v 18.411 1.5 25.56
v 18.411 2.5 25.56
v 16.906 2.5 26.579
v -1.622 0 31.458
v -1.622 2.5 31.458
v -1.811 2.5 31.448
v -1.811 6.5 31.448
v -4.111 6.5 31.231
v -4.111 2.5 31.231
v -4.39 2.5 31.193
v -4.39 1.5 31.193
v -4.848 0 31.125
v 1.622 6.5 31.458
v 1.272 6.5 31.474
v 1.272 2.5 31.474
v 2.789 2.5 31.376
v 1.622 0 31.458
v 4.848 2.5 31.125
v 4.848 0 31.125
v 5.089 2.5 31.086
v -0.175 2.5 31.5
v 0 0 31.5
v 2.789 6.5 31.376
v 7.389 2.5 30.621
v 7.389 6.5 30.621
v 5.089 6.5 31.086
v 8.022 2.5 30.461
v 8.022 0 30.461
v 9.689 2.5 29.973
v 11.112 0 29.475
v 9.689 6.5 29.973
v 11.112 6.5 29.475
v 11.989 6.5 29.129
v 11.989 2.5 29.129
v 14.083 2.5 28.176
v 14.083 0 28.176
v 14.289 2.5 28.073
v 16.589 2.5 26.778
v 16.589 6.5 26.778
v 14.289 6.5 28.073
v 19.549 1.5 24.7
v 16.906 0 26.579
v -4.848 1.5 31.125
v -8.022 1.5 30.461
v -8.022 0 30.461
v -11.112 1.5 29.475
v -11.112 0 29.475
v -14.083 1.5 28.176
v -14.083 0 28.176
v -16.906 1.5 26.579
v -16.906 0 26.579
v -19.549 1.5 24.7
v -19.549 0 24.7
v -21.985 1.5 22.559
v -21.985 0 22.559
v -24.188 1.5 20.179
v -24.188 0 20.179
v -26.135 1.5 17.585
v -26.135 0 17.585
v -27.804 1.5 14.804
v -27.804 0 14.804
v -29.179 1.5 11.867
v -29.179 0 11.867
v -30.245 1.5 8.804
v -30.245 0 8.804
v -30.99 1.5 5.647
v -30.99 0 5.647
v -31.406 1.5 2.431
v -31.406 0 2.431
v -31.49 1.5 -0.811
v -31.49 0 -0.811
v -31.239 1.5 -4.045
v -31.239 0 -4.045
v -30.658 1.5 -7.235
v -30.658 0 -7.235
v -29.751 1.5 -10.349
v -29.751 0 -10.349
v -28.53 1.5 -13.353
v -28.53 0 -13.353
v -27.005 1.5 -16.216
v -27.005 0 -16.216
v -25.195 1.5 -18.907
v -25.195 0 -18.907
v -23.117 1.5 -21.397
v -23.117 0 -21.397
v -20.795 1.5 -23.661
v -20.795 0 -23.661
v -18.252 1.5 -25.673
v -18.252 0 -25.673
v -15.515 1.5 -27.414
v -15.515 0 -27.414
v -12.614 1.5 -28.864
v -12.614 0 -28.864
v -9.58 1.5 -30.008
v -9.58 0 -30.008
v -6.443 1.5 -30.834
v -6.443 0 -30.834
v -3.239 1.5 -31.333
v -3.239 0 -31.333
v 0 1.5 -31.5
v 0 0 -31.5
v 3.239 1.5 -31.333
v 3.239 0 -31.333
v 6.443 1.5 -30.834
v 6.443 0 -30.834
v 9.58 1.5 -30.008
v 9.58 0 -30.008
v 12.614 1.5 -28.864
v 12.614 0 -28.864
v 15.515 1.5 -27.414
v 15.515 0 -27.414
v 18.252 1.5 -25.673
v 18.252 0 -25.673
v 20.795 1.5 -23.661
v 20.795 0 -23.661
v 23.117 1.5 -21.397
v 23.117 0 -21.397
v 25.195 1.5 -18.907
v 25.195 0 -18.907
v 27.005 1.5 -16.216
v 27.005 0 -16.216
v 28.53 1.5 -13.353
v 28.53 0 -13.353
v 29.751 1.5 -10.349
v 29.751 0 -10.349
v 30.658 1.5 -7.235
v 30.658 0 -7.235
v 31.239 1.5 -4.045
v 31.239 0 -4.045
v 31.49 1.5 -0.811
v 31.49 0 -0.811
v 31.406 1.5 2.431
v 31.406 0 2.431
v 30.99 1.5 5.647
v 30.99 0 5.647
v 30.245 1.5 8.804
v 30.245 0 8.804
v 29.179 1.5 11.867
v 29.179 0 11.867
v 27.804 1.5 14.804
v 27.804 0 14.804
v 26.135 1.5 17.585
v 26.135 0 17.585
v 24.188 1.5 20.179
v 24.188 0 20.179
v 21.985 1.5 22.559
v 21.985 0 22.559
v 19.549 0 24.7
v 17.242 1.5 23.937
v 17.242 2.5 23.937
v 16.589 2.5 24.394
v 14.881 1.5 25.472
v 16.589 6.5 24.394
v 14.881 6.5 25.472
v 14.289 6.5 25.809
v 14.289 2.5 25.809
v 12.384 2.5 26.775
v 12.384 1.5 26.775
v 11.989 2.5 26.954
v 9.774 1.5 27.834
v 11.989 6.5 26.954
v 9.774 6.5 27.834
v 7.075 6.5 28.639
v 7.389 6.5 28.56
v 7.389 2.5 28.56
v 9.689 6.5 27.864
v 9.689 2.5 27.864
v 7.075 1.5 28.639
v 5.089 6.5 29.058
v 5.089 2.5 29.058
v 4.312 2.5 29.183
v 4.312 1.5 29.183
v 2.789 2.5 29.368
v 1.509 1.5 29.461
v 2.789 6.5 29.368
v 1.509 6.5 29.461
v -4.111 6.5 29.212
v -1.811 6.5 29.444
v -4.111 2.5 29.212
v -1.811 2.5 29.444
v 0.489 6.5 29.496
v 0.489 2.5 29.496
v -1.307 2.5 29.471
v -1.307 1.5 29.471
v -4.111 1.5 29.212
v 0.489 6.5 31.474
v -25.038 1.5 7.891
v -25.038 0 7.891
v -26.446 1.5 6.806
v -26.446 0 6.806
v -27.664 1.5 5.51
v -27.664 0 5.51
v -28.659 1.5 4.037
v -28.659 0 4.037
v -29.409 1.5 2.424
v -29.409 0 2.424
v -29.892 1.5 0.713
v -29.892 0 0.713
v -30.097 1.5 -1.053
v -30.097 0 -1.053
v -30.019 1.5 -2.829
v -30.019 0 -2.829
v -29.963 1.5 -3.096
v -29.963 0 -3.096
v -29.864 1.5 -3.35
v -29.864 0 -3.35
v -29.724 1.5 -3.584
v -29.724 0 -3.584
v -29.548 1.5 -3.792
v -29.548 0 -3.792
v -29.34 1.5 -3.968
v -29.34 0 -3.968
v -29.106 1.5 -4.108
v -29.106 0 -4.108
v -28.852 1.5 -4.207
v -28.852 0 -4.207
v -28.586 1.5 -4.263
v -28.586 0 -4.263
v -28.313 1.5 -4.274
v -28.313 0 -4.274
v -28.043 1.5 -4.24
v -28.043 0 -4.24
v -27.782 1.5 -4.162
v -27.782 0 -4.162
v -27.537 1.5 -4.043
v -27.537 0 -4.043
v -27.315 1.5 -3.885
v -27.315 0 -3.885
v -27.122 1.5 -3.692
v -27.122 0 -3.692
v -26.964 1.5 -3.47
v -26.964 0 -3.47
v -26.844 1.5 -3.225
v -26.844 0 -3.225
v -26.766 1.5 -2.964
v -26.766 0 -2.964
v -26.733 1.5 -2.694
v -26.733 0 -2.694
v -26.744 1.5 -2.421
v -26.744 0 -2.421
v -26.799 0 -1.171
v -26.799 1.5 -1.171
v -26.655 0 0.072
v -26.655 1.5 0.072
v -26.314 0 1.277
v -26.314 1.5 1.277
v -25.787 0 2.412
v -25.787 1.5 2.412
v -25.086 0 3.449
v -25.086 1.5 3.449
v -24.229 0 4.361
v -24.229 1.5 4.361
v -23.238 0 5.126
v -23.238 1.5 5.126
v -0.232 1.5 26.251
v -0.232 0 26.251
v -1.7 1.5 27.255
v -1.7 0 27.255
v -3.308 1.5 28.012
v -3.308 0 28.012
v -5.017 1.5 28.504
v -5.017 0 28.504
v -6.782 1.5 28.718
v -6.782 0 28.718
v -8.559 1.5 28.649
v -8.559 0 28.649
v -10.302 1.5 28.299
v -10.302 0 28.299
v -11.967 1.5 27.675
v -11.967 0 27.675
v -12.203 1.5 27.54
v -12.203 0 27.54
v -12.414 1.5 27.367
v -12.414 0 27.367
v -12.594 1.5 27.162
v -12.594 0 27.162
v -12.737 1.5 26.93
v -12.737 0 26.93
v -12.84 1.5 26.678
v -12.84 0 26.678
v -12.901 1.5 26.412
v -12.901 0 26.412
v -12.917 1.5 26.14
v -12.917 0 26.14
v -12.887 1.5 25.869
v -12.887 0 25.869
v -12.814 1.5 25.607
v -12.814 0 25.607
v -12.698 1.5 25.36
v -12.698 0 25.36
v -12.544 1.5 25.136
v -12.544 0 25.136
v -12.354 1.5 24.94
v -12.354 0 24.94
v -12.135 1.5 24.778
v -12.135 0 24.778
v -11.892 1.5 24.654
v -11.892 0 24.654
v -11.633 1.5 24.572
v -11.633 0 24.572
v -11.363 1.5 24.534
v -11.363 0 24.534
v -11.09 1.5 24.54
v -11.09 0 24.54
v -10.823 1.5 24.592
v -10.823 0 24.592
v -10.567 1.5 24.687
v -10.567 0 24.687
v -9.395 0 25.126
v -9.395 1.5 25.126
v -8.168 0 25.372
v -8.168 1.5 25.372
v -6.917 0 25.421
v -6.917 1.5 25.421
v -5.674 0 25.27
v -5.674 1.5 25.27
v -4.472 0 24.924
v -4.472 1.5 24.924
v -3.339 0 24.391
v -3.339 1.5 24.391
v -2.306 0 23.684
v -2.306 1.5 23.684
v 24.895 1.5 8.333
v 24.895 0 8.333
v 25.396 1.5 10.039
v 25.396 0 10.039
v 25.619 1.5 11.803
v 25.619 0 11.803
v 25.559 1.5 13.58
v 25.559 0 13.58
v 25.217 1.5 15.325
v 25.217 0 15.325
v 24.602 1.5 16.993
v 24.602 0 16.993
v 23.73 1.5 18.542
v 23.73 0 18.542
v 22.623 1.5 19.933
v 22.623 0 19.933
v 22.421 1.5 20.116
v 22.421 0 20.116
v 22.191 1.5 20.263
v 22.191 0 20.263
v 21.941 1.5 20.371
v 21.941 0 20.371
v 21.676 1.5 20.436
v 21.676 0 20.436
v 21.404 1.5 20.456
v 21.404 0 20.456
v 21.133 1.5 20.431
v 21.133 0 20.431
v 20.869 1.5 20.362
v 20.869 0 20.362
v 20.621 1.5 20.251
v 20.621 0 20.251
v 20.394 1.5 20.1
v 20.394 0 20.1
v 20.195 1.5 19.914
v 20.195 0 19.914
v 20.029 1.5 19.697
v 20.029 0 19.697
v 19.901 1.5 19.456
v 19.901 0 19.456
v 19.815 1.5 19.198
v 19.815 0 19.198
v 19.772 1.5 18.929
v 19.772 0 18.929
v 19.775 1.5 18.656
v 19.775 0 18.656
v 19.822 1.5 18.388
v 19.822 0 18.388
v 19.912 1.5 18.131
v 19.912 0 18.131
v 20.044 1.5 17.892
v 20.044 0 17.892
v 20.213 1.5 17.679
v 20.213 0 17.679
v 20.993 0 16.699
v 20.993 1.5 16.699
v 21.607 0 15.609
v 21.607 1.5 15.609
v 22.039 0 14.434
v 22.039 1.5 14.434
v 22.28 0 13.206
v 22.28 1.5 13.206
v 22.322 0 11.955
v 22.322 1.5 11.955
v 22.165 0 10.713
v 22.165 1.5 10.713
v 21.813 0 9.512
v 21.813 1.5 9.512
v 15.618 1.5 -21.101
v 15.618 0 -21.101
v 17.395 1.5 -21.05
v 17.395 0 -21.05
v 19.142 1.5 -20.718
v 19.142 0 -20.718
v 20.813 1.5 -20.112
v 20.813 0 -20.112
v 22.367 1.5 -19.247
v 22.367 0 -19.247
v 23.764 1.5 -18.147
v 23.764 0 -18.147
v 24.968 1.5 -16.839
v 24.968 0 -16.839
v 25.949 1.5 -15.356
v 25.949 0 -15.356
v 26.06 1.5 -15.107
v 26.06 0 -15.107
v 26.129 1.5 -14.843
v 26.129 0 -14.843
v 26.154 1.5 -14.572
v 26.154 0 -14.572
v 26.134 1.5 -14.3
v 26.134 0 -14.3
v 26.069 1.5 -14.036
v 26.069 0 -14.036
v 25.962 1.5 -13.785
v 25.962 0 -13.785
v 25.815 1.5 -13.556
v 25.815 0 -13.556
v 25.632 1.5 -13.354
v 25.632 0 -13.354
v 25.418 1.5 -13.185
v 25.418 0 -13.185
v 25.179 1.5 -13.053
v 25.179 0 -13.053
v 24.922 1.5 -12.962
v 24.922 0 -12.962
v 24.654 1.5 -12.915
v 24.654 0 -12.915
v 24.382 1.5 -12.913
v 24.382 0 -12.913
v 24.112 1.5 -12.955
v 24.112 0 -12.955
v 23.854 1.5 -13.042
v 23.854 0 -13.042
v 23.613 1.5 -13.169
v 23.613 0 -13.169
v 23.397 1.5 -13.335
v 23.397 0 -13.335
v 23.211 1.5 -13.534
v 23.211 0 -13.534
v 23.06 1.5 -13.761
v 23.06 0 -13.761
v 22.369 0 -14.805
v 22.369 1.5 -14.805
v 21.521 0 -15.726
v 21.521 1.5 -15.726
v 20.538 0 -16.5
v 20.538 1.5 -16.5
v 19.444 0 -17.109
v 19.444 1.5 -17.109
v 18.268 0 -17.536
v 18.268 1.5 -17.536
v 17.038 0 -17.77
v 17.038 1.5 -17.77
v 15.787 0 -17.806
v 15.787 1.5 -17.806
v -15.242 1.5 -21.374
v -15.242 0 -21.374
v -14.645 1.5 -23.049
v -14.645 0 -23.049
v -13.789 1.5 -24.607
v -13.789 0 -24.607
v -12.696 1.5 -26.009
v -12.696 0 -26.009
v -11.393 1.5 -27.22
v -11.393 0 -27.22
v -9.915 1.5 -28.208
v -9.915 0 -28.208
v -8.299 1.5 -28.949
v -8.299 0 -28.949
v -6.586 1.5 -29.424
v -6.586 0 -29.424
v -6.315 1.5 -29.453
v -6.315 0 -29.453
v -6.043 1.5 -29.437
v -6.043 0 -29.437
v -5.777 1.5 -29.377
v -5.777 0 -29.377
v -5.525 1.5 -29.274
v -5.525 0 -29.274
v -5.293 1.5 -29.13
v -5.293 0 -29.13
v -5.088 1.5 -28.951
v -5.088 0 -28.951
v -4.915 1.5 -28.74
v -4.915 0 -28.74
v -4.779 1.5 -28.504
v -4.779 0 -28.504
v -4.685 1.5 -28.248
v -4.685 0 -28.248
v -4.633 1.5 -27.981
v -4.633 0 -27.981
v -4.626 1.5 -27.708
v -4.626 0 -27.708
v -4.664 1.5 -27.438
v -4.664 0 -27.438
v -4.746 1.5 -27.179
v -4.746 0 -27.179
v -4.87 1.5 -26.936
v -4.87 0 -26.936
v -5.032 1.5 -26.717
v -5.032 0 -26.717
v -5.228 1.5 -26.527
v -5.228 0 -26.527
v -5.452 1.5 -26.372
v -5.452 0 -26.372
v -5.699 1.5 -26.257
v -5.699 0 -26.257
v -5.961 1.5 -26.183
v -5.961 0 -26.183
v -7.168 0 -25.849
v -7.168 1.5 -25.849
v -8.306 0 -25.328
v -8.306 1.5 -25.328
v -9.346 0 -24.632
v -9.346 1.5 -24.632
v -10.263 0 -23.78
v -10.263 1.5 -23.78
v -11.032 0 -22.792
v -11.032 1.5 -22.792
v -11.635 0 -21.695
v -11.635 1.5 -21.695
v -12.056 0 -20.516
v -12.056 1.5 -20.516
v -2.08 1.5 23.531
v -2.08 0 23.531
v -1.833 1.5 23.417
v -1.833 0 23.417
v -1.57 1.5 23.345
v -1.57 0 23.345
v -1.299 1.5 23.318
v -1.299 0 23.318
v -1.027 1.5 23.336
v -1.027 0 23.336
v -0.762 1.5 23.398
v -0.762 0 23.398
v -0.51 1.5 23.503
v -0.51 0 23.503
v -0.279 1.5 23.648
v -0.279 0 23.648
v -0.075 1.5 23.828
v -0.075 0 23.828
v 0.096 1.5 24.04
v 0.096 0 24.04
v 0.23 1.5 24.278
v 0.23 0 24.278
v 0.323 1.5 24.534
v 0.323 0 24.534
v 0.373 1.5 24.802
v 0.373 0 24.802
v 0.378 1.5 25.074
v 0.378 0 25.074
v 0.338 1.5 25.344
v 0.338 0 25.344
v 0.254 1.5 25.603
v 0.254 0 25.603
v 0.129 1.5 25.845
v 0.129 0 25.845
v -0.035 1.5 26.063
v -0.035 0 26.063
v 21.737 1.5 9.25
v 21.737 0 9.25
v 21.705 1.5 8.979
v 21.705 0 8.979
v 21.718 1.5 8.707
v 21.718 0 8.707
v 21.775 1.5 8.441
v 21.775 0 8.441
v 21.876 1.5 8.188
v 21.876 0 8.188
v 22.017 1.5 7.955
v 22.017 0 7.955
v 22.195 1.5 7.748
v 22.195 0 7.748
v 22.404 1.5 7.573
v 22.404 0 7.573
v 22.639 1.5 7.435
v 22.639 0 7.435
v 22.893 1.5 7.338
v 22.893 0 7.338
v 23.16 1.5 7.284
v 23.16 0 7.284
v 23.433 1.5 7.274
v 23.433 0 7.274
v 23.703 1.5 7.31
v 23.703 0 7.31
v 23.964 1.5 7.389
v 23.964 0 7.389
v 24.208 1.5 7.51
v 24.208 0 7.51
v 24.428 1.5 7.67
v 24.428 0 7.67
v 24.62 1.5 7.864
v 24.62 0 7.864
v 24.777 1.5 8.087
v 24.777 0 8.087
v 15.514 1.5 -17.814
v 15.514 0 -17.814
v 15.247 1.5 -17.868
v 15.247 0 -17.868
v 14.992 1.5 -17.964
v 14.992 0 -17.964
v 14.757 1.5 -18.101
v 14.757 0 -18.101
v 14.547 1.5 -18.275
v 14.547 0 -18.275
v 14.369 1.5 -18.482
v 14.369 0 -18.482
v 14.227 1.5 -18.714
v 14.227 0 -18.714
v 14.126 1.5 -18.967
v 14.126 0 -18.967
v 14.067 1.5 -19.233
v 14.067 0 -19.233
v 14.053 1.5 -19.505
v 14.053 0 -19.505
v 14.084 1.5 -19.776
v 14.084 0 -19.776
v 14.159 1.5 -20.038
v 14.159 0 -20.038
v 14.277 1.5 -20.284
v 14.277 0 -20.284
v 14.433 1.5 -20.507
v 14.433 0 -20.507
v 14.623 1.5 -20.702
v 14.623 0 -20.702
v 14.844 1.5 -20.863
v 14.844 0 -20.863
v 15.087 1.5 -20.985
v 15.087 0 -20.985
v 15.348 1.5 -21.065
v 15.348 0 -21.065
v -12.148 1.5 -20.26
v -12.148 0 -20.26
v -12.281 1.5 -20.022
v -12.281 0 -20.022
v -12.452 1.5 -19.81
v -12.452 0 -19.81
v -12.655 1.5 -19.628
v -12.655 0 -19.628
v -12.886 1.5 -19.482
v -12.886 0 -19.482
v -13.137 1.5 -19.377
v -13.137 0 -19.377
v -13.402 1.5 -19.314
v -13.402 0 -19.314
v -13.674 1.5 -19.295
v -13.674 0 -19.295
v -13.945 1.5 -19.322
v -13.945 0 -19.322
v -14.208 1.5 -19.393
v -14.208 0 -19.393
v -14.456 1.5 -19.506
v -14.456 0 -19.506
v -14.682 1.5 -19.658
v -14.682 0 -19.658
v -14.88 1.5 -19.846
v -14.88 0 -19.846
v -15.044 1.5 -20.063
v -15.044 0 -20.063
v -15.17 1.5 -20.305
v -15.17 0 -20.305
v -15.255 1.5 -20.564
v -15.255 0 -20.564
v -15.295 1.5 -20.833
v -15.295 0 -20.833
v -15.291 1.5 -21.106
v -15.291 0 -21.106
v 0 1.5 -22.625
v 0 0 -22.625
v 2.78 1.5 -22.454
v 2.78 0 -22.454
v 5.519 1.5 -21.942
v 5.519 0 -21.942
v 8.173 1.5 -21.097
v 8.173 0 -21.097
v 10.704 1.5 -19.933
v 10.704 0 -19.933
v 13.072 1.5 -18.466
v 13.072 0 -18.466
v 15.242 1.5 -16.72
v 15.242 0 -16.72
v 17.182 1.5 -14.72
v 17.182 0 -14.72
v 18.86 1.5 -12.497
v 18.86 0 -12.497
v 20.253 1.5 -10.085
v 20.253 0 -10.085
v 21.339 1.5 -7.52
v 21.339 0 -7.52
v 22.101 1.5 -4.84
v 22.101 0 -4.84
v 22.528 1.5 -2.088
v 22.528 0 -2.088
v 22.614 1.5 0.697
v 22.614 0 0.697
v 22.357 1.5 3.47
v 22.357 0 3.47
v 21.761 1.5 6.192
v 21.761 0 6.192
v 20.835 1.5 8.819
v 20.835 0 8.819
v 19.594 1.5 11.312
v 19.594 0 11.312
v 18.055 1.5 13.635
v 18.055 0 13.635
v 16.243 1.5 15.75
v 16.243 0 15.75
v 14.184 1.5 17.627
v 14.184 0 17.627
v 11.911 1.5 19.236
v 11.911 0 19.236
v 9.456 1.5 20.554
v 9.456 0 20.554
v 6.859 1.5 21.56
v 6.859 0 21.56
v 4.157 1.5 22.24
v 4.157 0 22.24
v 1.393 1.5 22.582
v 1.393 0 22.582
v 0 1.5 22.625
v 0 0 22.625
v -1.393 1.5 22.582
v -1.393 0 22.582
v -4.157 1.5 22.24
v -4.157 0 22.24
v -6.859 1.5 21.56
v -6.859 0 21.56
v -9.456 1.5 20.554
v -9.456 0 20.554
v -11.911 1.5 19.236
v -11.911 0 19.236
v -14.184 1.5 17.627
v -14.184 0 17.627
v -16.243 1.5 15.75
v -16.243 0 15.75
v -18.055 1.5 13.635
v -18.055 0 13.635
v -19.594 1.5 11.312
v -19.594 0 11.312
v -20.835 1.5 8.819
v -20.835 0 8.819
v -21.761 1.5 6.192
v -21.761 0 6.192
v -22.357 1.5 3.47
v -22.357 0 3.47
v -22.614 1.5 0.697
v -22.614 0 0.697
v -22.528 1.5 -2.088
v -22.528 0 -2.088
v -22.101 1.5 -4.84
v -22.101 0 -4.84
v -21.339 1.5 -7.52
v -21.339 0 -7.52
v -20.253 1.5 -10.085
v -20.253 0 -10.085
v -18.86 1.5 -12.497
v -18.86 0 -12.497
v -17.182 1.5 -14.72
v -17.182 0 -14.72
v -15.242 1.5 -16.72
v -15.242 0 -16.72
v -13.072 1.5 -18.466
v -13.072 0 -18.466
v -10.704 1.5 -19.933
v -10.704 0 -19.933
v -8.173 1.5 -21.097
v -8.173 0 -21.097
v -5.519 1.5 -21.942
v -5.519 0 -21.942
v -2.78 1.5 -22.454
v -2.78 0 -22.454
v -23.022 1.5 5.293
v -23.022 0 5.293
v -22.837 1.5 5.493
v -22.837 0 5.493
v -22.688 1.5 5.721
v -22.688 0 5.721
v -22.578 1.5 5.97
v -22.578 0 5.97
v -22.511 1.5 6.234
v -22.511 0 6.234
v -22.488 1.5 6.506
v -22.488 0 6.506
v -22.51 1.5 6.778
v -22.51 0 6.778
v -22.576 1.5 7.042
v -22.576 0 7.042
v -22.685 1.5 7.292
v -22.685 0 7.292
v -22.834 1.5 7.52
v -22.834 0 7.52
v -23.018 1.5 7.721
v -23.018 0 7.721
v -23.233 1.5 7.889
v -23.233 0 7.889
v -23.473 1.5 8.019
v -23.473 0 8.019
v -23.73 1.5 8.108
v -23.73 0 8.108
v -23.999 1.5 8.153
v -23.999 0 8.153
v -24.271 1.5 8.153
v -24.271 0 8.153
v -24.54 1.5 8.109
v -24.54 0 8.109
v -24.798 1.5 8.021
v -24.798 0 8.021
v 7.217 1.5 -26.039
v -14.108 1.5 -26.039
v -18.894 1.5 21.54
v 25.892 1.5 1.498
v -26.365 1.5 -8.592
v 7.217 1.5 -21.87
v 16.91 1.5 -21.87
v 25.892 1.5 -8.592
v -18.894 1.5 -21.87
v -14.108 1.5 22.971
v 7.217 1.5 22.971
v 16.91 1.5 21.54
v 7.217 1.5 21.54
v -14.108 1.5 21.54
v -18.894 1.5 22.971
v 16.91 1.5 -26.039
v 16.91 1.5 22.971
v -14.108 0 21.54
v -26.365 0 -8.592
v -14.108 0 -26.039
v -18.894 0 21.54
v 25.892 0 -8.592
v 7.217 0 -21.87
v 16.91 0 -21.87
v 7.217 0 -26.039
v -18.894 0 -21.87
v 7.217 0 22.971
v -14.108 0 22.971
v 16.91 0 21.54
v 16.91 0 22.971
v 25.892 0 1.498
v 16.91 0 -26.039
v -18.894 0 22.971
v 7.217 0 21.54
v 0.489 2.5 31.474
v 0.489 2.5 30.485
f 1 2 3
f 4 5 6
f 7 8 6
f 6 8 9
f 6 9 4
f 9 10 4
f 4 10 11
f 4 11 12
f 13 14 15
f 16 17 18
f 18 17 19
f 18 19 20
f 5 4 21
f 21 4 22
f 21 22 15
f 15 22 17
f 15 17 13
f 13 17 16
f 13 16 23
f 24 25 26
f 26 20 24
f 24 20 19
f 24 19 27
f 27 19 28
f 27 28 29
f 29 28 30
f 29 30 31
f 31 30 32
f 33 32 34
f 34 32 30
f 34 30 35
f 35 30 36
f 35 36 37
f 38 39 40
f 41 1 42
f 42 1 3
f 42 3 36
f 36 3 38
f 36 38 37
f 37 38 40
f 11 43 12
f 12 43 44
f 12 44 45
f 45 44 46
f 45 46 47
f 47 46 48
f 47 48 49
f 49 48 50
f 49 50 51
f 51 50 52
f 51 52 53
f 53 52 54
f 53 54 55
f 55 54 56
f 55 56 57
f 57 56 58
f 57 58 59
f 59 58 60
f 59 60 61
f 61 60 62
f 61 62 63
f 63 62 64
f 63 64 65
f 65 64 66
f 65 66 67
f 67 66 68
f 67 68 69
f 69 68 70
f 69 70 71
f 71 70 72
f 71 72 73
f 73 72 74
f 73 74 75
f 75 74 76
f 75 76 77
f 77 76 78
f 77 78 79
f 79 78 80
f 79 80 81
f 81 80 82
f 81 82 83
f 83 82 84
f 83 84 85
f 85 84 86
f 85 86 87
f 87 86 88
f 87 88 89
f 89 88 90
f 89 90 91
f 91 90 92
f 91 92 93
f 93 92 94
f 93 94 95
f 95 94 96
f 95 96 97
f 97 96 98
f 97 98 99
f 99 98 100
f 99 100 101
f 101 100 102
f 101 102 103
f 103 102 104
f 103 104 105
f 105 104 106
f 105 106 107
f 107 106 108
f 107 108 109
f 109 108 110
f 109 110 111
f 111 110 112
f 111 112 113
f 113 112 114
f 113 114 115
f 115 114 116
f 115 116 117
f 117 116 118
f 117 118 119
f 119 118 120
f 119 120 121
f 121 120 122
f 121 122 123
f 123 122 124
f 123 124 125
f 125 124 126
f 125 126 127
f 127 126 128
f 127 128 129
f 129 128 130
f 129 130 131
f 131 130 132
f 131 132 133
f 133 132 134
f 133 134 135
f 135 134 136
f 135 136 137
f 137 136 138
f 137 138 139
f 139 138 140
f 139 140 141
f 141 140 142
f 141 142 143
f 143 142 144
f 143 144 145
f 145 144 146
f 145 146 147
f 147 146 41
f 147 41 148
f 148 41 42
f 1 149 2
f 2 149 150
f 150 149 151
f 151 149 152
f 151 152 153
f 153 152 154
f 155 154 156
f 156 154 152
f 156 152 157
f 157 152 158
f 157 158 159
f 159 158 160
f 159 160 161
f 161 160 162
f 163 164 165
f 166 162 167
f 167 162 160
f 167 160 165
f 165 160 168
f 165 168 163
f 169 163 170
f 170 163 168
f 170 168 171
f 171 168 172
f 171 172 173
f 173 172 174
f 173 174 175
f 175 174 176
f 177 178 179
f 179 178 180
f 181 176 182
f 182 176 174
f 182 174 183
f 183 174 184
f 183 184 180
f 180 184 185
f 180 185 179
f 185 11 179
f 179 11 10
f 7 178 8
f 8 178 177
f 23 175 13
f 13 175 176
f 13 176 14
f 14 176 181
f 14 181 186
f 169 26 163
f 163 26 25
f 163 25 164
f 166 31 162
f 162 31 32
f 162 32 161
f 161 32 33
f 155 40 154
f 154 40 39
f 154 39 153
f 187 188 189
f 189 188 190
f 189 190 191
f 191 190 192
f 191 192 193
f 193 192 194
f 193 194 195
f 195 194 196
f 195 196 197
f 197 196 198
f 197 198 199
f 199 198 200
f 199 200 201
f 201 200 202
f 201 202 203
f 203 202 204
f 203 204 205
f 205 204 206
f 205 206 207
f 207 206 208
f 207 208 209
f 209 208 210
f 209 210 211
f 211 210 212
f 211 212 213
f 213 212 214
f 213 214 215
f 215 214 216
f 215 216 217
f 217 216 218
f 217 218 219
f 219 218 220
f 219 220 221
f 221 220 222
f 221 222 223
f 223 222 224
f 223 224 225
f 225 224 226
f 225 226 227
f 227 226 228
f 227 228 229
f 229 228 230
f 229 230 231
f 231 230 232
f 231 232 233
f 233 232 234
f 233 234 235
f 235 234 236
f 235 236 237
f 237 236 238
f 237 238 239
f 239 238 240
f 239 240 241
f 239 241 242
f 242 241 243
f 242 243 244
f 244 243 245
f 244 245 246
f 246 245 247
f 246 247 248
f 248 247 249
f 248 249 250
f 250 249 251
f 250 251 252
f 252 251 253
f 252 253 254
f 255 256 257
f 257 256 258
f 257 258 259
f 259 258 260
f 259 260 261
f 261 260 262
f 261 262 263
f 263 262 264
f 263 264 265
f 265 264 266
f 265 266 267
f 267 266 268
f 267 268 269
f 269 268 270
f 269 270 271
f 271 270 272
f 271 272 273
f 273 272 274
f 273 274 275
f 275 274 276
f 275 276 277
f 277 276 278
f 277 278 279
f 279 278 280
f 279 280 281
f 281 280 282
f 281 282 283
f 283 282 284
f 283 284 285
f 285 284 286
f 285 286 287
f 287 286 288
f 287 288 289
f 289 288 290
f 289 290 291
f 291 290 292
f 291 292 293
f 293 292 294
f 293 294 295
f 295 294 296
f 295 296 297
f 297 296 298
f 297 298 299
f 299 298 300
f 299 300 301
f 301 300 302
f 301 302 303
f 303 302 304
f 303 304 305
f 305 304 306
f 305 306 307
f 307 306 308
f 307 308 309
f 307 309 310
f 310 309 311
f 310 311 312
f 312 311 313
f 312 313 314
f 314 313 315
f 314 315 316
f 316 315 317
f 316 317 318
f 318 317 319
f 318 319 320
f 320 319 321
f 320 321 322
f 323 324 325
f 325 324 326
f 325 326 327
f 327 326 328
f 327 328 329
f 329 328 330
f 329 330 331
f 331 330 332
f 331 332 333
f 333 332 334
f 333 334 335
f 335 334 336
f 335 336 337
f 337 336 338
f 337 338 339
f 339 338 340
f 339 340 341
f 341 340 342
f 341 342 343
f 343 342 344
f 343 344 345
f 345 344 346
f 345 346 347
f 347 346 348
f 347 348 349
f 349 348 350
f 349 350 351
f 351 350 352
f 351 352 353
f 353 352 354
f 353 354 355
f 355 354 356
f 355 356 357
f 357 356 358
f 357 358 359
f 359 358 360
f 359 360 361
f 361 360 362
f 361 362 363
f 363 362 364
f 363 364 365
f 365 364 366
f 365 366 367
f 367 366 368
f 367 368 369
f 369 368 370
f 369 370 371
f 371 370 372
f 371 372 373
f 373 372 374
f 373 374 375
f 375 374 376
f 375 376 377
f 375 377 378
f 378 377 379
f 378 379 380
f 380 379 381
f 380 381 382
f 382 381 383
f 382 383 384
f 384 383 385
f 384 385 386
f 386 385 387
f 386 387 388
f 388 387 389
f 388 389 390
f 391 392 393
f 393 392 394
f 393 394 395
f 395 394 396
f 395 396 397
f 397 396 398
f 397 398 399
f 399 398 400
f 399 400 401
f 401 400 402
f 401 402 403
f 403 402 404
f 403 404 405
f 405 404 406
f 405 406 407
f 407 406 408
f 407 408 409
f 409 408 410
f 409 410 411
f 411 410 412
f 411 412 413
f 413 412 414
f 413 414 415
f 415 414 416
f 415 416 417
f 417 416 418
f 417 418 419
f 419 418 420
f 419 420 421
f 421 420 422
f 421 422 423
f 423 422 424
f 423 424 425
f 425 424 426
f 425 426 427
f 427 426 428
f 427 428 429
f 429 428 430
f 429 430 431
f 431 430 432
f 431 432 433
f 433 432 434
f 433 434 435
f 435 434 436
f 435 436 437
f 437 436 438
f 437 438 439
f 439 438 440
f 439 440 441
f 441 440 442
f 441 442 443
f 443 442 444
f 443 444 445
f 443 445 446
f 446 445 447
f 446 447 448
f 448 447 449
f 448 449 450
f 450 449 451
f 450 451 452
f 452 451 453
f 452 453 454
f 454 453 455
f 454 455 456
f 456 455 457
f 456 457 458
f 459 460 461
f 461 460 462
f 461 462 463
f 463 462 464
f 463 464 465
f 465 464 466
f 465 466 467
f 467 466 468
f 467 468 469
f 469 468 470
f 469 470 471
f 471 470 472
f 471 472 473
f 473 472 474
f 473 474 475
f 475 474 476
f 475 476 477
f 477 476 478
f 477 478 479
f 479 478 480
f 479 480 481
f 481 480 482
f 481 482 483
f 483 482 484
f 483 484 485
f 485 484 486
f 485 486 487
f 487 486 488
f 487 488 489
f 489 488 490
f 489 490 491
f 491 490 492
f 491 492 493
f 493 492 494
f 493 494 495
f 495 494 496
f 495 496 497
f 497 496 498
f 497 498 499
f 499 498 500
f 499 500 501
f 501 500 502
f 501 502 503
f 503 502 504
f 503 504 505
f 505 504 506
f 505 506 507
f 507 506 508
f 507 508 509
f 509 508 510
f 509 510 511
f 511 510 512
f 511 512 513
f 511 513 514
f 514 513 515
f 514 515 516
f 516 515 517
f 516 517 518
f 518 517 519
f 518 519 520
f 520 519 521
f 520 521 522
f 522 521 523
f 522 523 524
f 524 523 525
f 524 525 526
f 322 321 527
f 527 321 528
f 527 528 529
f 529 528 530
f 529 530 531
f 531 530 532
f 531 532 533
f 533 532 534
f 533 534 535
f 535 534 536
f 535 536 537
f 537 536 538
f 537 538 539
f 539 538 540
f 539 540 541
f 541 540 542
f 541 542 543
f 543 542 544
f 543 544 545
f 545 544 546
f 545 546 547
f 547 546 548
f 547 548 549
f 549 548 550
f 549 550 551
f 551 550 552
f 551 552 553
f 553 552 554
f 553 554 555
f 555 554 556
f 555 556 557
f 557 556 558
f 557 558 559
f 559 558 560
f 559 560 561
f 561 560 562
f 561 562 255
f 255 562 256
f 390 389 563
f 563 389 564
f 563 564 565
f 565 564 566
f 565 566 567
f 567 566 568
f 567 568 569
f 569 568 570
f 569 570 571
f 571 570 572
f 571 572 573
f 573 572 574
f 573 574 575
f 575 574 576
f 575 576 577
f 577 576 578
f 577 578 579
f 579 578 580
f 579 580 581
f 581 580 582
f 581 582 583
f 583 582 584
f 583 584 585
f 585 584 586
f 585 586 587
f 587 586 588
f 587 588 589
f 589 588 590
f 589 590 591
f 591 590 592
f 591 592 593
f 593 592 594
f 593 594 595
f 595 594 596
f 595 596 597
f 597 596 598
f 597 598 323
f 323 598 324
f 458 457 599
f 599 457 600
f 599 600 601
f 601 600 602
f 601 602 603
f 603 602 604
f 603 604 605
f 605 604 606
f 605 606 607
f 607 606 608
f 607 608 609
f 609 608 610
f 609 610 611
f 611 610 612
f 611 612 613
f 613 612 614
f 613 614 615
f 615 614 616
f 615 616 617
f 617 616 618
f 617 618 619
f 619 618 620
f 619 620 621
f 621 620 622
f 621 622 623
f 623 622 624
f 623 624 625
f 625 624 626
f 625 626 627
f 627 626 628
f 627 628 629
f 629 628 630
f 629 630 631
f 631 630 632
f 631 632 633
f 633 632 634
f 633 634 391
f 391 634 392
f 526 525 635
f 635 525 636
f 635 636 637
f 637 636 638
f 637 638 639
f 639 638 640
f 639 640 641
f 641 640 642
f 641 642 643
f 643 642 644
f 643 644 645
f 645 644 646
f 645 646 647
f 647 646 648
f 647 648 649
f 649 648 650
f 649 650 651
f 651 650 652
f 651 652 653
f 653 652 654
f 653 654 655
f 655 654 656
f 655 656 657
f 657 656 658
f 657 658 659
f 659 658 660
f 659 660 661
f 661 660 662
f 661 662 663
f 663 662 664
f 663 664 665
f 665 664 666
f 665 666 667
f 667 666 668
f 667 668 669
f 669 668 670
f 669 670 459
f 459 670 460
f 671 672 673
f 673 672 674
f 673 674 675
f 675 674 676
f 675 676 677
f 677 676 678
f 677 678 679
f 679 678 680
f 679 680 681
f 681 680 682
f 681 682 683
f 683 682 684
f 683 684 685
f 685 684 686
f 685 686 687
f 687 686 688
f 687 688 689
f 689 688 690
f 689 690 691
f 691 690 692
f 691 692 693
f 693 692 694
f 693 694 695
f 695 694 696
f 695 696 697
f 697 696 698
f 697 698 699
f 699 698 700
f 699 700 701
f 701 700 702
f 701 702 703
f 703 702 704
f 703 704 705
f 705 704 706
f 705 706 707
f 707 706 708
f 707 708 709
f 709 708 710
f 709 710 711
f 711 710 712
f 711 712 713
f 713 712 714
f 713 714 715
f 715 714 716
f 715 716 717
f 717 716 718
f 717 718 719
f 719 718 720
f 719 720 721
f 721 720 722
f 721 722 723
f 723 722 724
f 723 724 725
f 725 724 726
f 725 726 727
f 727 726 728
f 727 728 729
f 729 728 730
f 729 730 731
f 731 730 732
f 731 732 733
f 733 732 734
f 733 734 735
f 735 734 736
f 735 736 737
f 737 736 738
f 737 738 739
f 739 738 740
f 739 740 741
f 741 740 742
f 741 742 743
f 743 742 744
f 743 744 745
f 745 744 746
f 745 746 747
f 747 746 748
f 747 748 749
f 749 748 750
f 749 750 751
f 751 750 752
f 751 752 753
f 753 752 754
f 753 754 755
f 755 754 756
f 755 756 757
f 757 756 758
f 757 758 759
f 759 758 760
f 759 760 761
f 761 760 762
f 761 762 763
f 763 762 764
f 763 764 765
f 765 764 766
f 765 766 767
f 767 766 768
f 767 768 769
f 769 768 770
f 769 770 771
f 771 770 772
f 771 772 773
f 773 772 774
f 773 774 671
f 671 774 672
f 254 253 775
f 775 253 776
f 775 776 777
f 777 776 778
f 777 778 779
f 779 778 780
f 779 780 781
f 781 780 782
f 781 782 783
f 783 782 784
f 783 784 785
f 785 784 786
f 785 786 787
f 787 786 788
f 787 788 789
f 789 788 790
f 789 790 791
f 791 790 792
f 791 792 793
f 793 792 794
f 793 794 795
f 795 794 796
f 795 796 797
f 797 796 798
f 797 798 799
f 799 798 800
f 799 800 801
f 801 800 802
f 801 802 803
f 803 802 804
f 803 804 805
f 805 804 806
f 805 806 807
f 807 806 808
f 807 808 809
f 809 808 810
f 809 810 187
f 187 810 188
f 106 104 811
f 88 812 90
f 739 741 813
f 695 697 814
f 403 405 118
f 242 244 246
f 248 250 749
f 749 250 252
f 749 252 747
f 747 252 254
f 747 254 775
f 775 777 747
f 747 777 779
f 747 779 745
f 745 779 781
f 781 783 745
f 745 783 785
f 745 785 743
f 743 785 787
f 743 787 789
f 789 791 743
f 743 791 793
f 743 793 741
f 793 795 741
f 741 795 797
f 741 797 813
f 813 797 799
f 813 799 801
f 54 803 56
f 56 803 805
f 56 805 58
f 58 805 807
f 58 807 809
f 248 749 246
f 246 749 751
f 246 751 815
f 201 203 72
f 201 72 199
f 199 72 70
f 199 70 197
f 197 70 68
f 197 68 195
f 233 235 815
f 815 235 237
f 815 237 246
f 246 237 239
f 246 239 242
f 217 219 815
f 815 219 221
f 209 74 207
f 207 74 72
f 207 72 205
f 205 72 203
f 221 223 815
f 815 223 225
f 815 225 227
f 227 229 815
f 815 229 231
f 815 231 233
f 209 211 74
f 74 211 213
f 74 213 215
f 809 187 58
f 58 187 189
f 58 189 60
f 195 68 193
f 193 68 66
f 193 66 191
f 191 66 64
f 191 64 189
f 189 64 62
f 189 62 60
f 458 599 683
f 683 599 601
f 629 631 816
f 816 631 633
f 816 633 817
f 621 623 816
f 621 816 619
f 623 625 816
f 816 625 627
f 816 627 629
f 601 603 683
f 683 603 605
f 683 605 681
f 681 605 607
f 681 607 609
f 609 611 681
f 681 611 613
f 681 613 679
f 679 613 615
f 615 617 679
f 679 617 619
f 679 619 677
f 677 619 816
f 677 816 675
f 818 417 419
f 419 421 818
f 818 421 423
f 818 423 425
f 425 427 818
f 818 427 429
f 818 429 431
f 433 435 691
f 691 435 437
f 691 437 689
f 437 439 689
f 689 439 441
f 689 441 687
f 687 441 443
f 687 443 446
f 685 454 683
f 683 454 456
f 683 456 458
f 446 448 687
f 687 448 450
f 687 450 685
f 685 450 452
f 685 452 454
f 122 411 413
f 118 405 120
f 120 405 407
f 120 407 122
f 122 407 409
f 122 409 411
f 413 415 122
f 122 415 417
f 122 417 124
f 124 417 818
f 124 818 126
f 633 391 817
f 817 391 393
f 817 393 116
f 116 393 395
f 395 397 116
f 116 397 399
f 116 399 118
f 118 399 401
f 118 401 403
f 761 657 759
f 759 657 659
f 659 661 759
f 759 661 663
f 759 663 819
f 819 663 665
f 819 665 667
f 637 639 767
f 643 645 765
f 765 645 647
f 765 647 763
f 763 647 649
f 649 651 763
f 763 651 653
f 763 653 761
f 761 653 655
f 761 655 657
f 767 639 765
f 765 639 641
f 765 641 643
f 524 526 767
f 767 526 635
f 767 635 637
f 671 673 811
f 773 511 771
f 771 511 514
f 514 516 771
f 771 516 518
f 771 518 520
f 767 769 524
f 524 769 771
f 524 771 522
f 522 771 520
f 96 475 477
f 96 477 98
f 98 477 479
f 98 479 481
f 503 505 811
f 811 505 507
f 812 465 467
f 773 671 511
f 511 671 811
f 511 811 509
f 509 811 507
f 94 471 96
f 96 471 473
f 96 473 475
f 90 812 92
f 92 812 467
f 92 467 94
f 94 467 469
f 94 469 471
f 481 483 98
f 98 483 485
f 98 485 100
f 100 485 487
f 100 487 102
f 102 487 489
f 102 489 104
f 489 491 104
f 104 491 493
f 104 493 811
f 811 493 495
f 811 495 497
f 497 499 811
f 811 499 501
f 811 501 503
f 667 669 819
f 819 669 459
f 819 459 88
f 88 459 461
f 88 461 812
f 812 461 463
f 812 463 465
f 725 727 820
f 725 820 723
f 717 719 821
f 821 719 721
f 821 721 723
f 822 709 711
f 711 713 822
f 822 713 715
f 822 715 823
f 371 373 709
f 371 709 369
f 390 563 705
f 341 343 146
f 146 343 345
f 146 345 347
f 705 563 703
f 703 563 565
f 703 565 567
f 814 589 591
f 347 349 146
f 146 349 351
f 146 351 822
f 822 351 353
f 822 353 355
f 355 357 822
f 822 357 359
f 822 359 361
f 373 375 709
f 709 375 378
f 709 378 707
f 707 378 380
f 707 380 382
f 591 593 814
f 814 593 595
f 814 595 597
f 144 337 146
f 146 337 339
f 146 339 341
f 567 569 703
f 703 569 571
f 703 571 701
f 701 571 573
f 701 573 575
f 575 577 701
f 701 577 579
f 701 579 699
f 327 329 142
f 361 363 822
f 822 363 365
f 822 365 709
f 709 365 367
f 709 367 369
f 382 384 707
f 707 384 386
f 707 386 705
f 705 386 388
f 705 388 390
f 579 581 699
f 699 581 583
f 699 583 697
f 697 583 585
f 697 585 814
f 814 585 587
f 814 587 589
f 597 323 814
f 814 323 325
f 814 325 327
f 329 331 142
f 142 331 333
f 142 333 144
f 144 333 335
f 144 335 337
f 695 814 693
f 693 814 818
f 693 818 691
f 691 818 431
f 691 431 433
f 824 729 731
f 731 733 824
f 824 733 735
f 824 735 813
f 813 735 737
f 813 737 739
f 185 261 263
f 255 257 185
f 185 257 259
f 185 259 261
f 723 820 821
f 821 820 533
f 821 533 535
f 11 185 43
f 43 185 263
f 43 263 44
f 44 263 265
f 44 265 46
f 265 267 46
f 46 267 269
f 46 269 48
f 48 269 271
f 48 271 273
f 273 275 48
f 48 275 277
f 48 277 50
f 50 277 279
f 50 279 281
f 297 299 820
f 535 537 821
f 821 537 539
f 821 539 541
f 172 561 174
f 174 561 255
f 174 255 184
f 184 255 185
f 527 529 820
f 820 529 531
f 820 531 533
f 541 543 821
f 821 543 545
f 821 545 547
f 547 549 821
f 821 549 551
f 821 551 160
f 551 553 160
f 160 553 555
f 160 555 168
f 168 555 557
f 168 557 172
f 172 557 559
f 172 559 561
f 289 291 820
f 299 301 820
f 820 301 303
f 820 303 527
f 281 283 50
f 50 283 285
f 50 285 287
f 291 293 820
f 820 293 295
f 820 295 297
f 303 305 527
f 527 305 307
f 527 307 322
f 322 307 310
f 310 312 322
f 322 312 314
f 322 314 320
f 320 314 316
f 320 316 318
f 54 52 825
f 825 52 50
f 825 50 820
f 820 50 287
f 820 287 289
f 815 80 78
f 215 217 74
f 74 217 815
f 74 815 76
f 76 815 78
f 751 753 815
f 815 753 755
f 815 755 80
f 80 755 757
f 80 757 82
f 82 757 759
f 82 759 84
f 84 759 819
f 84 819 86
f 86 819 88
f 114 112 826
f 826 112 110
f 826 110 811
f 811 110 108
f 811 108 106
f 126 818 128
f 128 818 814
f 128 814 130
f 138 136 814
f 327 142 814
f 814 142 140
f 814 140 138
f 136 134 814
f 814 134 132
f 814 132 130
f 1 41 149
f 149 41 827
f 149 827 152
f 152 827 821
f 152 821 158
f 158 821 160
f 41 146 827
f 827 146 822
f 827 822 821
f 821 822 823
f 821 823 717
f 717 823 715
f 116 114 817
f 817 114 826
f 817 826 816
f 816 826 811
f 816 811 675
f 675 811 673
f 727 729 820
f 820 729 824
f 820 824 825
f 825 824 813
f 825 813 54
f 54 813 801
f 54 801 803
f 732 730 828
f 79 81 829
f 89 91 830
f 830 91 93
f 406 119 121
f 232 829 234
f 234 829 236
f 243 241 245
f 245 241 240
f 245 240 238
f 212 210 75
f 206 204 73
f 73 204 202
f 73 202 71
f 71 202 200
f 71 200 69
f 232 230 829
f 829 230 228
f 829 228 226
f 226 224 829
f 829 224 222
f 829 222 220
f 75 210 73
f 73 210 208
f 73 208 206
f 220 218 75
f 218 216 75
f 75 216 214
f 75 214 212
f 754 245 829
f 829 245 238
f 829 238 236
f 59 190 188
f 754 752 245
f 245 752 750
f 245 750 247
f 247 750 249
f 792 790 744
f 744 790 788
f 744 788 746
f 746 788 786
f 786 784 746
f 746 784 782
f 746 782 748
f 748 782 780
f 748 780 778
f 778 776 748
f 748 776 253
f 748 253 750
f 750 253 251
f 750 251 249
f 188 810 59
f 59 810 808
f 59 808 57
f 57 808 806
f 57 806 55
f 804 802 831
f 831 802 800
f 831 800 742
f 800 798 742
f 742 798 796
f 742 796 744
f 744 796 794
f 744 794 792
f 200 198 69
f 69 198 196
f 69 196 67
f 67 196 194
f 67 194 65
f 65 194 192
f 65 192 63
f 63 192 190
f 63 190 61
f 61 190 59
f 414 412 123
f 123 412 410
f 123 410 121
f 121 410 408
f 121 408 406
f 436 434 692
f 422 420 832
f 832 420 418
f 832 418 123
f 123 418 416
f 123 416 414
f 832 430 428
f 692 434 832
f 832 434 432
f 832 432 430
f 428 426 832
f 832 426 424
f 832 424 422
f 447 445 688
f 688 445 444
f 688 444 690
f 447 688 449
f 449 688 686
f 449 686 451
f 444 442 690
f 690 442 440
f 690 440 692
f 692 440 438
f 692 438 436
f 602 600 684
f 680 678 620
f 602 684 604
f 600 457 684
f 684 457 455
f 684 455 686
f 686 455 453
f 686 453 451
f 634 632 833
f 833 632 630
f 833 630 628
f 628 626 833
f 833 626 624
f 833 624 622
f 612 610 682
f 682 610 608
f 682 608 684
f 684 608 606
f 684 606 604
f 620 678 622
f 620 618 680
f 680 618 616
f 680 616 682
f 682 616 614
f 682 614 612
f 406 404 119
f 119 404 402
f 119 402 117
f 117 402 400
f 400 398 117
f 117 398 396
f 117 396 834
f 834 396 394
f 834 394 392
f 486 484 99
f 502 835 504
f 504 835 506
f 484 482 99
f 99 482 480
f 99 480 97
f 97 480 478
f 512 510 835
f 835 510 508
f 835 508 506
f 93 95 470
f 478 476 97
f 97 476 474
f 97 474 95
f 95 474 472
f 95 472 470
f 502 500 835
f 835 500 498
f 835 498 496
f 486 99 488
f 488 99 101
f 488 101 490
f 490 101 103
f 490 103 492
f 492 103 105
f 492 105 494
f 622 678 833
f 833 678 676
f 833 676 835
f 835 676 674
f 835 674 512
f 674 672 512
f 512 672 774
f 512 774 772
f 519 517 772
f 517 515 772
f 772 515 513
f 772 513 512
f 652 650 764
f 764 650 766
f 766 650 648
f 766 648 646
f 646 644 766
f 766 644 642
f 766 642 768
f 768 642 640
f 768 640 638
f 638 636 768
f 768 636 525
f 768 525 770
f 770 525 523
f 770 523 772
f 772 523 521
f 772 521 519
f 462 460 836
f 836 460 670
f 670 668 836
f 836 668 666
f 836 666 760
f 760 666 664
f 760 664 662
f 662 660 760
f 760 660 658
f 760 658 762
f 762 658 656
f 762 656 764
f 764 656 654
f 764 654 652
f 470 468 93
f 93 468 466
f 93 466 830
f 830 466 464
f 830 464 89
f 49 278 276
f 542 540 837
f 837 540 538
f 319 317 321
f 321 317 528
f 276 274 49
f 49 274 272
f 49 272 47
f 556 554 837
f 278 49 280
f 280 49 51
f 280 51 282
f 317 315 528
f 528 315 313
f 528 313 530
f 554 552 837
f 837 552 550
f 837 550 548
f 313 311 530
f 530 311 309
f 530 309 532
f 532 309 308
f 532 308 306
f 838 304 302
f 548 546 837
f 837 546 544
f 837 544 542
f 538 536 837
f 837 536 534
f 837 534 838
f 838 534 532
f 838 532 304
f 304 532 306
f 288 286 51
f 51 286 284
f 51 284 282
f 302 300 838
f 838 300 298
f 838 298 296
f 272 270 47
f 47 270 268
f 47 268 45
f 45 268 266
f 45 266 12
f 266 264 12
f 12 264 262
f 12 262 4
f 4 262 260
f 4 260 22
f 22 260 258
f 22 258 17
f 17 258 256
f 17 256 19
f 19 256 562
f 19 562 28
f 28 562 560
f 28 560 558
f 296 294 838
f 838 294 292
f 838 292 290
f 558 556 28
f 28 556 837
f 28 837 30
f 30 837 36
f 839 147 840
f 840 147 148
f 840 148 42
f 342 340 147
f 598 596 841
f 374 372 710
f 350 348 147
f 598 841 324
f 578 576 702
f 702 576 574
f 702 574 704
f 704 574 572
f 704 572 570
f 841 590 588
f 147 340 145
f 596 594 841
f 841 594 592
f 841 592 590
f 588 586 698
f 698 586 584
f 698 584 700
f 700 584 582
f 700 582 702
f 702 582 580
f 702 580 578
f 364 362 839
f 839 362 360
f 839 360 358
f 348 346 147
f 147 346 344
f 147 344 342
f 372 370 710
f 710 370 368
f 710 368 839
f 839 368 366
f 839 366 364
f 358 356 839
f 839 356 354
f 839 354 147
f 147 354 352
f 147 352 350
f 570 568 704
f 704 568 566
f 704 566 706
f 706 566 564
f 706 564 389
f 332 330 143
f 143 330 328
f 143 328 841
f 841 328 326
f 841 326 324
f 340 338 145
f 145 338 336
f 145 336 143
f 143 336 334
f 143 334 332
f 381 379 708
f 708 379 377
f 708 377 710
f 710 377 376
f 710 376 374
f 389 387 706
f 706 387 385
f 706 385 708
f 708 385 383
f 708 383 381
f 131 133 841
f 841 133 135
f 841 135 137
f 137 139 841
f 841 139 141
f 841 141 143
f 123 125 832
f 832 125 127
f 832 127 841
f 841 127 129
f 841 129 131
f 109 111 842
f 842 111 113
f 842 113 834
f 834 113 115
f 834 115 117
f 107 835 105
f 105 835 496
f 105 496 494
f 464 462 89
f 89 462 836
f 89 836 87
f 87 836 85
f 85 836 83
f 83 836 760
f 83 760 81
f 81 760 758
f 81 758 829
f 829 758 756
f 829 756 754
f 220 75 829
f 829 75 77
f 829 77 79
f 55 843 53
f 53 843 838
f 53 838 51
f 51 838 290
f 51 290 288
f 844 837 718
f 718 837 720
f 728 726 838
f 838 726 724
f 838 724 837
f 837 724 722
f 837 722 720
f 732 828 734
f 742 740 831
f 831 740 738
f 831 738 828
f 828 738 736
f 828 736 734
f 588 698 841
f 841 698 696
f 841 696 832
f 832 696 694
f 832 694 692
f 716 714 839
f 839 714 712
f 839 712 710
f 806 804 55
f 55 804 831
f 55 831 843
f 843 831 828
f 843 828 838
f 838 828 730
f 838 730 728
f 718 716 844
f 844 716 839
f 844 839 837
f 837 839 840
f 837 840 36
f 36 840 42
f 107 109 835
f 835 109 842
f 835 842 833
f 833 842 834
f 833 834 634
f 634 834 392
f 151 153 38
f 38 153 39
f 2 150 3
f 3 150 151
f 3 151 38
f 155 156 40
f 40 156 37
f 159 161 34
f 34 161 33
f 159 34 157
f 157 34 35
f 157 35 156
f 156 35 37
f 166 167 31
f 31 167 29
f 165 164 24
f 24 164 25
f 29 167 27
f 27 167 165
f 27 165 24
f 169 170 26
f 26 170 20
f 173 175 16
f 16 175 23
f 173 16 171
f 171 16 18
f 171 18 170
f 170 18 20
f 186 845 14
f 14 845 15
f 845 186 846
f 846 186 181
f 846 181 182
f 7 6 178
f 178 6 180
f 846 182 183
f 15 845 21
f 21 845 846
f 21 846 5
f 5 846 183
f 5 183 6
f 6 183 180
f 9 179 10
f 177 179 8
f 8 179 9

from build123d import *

# Parameters (mm, degrees)
SKETCH1_R           = 31.5
SKETCH1_R_2         = 22.625
BOSS_EXTRUDE1_DEPTH = 1.5
BOSS_EXTRUDE2_DEPTH = 5
SKETCH5_OUTSIDE_W   = 82.866
SKETCH5_OUTSIDE_H   = 82.866
SKETCH5_OUTSIDE_W_2 = 2.3
SKETCH5_OUTSIDE_H_2 = 2.235788696
SKETCH5_OUTSIDE_H_3 = 6
SKETCH5_OUTSIDE_H_4 = 9.066972397
SKETCH5_OUTSIDE_H_5 = 8.526406287
CUT_EXTRUDE10_DEPTH = 4


with BuildPart() as part:
    # Sketch1 → Boss-Extrude1 (new body)
    with BuildSketch(Plane(origin=(0, 0, 0), x_dir=(1, 0, 0), z_dir=(0, 1, 0))):
        Circle(SKETCH1_R)
        with BuildLine():
            ThreePointArc((-10.567211754, -24.68672042), (-6.292703266, -25.370596148), (-2.305786299, -23.684297857))
            ThreePointArc((-2.305786299, -23.684297857), (0.01460205, -23.930870181), (-0.231970274, -26.251258529))
            ThreePointArc((-0.231970274, -26.251258529), (-5.895204242, -28.646568451), (-11.966948868, -27.675154125))
            ThreePointArc((-11.966948868, -27.675154125), (-12.761297164, -25.481068715), (-10.567211754, -24.68672042))
        make_face(mode=Mode.SUBTRACT)
        with BuildLine():
            ThreePointArc((-26.743914336, 2.421399453), (-26.073423039, -1.855228921), (-23.237632962, -5.125917453))
            ThreePointArc((-23.237632962, -5.125917453), (-22.755097744, -7.408932951), (-25.038113242, -7.891468169))
            ThreePointArc((-25.038113242, -7.891468169), (-29.066223891, -3.245604073), (-30.018626241, 2.829151754))
            ThreePointArc((-30.018626241, 2.829151754), (-28.177394138, 4.262631556), (-26.743914336, 2.421399453))
        make_face(mode=Mode.SUBTRACT)
        with BuildLine():
            ThreePointArc((20.213018306, -17.678631743), (22.18431854, -13.824661813), (21.812578659, -9.511783622))
            ThreePointArc((21.812578659, -9.511783622), (22.764122308, -7.381158201), (24.894747729, -8.33270185))
            ThreePointArc((24.894747729, -8.33270185), (25.422787299, -14.458948891), (22.622645099, -19.933337648))
            ThreePointArc((22.622645099, -19.933337648), (20.29047875, -20.010798092), (20.213018306, -17.678631743))
        make_face(mode=Mode.SUBTRACT)
        with BuildLine():
            ThreePointArc((-12.05586069, 20.516306647), (-14.078025873, 19.351897797), (-15.242434724, 21.37406298))
            ThreePointArc((-15.242434724, 21.37406298), (-12.068710047, 26.64067482), (-6.585582445, 29.423666069))
            ThreePointArc((-6.585582445, 29.423666069), (-4.653290128, 28.115519899), (-5.961436298, 26.183227582))
            ThreePointArc((-5.961436298, 26.183227582), (-9.821558376, 24.224001618), (-12.05586069, 20.516306647))
        make_face(mode=Mode.SUBTRACT)
        Circle(SKETCH1_R_2, mode=Mode.SUBTRACT)
        with BuildLine():
            ThreePointArc((23.059544082, 13.760725128), (20.00336614, 16.826485265), (15.786701292, 17.805692285))
            ThreePointArc((15.786701292, 17.805692285), (14.05439926, 19.369063536), (15.617770512, 21.101365568))
            ThreePointArc((15.617770512, 21.101365568), (21.607350881, 19.710446595), (25.948512455, 15.35567395))
            ThreePointArc((25.948512455, 15.35567395), (25.301502679, 13.113715353), (23.059544082, 13.760725128))
        make_face(mode=Mode.SUBTRACT)
    extrude(amount=BOSS_EXTRUDE1_DEPTH)

    # Sketch2 → Boss-Extrude2 (add)
    with BuildSketch(Plane(origin=(0, 1.5, 0), x_dir=(1, 0, 0), z_dir=(0, 1, 0))):
        with BuildLine():
            Line((-4.111485424, -29.212081193), (-4.390230198, -31.192561274))
            ThreePointArc((-4.390230198, -31.192561274), (7.554963543, -30.580590672), (18.410886017, -25.559524175))
            Line((18.410886017, -25.559524175), (17.241940873, -23.936697244))
            ThreePointArc((17.241940873, -23.936697244), (7.075283318, -28.638965868), (-4.111485424, -29.212081193))
        make_face()
    extrude(amount=BOSS_EXTRUDE2_DEPTH)

    # Sketch5 outside → Cut-Extrude10 (cut)
    with BuildSketch(Plane(origin=(0, 6.5, 0), x_dir=(1, 0, 0), z_dir=(0, 1, 0))):
        Rectangle(SKETCH5_OUTSIDE_W, SKETCH5_OUTSIDE_H)
        with Locations((-2.961485424, -30.329975541)):
            Rectangle(SKETCH5_OUTSIDE_W_2, SKETCH5_OUTSIDE_H_2, mode=Mode.SUBTRACT)
        with Locations((1.638514576, -28.474302668)):
            Rectangle(SKETCH5_OUTSIDE_W_2, SKETCH5_OUTSIDE_H_3, mode=Mode.SUBTRACT)
        with Locations((6.238514576, -28.474302668)):
            Rectangle(SKETCH5_OUTSIDE_W_2, SKETCH5_OUTSIDE_H_3, mode=Mode.SUBTRACT)
        with Locations((10.838514576, -28.252340763)):
            Rectangle(SKETCH5_OUTSIDE_W_2, SKETCH5_OUTSIDE_H_4, mode=Mode.SUBTRACT)
        with Locations((15.438514576, -26.892833744)):
            Rectangle(SKETCH5_OUTSIDE_W_2, SKETCH5_OUTSIDE_H_5, mode=Mode.SUBTRACT)
    extrude(amount=-CUT_EXTRUDE10_DEPTH, mode=Mode.SUBTRACT)


solid = part.part
